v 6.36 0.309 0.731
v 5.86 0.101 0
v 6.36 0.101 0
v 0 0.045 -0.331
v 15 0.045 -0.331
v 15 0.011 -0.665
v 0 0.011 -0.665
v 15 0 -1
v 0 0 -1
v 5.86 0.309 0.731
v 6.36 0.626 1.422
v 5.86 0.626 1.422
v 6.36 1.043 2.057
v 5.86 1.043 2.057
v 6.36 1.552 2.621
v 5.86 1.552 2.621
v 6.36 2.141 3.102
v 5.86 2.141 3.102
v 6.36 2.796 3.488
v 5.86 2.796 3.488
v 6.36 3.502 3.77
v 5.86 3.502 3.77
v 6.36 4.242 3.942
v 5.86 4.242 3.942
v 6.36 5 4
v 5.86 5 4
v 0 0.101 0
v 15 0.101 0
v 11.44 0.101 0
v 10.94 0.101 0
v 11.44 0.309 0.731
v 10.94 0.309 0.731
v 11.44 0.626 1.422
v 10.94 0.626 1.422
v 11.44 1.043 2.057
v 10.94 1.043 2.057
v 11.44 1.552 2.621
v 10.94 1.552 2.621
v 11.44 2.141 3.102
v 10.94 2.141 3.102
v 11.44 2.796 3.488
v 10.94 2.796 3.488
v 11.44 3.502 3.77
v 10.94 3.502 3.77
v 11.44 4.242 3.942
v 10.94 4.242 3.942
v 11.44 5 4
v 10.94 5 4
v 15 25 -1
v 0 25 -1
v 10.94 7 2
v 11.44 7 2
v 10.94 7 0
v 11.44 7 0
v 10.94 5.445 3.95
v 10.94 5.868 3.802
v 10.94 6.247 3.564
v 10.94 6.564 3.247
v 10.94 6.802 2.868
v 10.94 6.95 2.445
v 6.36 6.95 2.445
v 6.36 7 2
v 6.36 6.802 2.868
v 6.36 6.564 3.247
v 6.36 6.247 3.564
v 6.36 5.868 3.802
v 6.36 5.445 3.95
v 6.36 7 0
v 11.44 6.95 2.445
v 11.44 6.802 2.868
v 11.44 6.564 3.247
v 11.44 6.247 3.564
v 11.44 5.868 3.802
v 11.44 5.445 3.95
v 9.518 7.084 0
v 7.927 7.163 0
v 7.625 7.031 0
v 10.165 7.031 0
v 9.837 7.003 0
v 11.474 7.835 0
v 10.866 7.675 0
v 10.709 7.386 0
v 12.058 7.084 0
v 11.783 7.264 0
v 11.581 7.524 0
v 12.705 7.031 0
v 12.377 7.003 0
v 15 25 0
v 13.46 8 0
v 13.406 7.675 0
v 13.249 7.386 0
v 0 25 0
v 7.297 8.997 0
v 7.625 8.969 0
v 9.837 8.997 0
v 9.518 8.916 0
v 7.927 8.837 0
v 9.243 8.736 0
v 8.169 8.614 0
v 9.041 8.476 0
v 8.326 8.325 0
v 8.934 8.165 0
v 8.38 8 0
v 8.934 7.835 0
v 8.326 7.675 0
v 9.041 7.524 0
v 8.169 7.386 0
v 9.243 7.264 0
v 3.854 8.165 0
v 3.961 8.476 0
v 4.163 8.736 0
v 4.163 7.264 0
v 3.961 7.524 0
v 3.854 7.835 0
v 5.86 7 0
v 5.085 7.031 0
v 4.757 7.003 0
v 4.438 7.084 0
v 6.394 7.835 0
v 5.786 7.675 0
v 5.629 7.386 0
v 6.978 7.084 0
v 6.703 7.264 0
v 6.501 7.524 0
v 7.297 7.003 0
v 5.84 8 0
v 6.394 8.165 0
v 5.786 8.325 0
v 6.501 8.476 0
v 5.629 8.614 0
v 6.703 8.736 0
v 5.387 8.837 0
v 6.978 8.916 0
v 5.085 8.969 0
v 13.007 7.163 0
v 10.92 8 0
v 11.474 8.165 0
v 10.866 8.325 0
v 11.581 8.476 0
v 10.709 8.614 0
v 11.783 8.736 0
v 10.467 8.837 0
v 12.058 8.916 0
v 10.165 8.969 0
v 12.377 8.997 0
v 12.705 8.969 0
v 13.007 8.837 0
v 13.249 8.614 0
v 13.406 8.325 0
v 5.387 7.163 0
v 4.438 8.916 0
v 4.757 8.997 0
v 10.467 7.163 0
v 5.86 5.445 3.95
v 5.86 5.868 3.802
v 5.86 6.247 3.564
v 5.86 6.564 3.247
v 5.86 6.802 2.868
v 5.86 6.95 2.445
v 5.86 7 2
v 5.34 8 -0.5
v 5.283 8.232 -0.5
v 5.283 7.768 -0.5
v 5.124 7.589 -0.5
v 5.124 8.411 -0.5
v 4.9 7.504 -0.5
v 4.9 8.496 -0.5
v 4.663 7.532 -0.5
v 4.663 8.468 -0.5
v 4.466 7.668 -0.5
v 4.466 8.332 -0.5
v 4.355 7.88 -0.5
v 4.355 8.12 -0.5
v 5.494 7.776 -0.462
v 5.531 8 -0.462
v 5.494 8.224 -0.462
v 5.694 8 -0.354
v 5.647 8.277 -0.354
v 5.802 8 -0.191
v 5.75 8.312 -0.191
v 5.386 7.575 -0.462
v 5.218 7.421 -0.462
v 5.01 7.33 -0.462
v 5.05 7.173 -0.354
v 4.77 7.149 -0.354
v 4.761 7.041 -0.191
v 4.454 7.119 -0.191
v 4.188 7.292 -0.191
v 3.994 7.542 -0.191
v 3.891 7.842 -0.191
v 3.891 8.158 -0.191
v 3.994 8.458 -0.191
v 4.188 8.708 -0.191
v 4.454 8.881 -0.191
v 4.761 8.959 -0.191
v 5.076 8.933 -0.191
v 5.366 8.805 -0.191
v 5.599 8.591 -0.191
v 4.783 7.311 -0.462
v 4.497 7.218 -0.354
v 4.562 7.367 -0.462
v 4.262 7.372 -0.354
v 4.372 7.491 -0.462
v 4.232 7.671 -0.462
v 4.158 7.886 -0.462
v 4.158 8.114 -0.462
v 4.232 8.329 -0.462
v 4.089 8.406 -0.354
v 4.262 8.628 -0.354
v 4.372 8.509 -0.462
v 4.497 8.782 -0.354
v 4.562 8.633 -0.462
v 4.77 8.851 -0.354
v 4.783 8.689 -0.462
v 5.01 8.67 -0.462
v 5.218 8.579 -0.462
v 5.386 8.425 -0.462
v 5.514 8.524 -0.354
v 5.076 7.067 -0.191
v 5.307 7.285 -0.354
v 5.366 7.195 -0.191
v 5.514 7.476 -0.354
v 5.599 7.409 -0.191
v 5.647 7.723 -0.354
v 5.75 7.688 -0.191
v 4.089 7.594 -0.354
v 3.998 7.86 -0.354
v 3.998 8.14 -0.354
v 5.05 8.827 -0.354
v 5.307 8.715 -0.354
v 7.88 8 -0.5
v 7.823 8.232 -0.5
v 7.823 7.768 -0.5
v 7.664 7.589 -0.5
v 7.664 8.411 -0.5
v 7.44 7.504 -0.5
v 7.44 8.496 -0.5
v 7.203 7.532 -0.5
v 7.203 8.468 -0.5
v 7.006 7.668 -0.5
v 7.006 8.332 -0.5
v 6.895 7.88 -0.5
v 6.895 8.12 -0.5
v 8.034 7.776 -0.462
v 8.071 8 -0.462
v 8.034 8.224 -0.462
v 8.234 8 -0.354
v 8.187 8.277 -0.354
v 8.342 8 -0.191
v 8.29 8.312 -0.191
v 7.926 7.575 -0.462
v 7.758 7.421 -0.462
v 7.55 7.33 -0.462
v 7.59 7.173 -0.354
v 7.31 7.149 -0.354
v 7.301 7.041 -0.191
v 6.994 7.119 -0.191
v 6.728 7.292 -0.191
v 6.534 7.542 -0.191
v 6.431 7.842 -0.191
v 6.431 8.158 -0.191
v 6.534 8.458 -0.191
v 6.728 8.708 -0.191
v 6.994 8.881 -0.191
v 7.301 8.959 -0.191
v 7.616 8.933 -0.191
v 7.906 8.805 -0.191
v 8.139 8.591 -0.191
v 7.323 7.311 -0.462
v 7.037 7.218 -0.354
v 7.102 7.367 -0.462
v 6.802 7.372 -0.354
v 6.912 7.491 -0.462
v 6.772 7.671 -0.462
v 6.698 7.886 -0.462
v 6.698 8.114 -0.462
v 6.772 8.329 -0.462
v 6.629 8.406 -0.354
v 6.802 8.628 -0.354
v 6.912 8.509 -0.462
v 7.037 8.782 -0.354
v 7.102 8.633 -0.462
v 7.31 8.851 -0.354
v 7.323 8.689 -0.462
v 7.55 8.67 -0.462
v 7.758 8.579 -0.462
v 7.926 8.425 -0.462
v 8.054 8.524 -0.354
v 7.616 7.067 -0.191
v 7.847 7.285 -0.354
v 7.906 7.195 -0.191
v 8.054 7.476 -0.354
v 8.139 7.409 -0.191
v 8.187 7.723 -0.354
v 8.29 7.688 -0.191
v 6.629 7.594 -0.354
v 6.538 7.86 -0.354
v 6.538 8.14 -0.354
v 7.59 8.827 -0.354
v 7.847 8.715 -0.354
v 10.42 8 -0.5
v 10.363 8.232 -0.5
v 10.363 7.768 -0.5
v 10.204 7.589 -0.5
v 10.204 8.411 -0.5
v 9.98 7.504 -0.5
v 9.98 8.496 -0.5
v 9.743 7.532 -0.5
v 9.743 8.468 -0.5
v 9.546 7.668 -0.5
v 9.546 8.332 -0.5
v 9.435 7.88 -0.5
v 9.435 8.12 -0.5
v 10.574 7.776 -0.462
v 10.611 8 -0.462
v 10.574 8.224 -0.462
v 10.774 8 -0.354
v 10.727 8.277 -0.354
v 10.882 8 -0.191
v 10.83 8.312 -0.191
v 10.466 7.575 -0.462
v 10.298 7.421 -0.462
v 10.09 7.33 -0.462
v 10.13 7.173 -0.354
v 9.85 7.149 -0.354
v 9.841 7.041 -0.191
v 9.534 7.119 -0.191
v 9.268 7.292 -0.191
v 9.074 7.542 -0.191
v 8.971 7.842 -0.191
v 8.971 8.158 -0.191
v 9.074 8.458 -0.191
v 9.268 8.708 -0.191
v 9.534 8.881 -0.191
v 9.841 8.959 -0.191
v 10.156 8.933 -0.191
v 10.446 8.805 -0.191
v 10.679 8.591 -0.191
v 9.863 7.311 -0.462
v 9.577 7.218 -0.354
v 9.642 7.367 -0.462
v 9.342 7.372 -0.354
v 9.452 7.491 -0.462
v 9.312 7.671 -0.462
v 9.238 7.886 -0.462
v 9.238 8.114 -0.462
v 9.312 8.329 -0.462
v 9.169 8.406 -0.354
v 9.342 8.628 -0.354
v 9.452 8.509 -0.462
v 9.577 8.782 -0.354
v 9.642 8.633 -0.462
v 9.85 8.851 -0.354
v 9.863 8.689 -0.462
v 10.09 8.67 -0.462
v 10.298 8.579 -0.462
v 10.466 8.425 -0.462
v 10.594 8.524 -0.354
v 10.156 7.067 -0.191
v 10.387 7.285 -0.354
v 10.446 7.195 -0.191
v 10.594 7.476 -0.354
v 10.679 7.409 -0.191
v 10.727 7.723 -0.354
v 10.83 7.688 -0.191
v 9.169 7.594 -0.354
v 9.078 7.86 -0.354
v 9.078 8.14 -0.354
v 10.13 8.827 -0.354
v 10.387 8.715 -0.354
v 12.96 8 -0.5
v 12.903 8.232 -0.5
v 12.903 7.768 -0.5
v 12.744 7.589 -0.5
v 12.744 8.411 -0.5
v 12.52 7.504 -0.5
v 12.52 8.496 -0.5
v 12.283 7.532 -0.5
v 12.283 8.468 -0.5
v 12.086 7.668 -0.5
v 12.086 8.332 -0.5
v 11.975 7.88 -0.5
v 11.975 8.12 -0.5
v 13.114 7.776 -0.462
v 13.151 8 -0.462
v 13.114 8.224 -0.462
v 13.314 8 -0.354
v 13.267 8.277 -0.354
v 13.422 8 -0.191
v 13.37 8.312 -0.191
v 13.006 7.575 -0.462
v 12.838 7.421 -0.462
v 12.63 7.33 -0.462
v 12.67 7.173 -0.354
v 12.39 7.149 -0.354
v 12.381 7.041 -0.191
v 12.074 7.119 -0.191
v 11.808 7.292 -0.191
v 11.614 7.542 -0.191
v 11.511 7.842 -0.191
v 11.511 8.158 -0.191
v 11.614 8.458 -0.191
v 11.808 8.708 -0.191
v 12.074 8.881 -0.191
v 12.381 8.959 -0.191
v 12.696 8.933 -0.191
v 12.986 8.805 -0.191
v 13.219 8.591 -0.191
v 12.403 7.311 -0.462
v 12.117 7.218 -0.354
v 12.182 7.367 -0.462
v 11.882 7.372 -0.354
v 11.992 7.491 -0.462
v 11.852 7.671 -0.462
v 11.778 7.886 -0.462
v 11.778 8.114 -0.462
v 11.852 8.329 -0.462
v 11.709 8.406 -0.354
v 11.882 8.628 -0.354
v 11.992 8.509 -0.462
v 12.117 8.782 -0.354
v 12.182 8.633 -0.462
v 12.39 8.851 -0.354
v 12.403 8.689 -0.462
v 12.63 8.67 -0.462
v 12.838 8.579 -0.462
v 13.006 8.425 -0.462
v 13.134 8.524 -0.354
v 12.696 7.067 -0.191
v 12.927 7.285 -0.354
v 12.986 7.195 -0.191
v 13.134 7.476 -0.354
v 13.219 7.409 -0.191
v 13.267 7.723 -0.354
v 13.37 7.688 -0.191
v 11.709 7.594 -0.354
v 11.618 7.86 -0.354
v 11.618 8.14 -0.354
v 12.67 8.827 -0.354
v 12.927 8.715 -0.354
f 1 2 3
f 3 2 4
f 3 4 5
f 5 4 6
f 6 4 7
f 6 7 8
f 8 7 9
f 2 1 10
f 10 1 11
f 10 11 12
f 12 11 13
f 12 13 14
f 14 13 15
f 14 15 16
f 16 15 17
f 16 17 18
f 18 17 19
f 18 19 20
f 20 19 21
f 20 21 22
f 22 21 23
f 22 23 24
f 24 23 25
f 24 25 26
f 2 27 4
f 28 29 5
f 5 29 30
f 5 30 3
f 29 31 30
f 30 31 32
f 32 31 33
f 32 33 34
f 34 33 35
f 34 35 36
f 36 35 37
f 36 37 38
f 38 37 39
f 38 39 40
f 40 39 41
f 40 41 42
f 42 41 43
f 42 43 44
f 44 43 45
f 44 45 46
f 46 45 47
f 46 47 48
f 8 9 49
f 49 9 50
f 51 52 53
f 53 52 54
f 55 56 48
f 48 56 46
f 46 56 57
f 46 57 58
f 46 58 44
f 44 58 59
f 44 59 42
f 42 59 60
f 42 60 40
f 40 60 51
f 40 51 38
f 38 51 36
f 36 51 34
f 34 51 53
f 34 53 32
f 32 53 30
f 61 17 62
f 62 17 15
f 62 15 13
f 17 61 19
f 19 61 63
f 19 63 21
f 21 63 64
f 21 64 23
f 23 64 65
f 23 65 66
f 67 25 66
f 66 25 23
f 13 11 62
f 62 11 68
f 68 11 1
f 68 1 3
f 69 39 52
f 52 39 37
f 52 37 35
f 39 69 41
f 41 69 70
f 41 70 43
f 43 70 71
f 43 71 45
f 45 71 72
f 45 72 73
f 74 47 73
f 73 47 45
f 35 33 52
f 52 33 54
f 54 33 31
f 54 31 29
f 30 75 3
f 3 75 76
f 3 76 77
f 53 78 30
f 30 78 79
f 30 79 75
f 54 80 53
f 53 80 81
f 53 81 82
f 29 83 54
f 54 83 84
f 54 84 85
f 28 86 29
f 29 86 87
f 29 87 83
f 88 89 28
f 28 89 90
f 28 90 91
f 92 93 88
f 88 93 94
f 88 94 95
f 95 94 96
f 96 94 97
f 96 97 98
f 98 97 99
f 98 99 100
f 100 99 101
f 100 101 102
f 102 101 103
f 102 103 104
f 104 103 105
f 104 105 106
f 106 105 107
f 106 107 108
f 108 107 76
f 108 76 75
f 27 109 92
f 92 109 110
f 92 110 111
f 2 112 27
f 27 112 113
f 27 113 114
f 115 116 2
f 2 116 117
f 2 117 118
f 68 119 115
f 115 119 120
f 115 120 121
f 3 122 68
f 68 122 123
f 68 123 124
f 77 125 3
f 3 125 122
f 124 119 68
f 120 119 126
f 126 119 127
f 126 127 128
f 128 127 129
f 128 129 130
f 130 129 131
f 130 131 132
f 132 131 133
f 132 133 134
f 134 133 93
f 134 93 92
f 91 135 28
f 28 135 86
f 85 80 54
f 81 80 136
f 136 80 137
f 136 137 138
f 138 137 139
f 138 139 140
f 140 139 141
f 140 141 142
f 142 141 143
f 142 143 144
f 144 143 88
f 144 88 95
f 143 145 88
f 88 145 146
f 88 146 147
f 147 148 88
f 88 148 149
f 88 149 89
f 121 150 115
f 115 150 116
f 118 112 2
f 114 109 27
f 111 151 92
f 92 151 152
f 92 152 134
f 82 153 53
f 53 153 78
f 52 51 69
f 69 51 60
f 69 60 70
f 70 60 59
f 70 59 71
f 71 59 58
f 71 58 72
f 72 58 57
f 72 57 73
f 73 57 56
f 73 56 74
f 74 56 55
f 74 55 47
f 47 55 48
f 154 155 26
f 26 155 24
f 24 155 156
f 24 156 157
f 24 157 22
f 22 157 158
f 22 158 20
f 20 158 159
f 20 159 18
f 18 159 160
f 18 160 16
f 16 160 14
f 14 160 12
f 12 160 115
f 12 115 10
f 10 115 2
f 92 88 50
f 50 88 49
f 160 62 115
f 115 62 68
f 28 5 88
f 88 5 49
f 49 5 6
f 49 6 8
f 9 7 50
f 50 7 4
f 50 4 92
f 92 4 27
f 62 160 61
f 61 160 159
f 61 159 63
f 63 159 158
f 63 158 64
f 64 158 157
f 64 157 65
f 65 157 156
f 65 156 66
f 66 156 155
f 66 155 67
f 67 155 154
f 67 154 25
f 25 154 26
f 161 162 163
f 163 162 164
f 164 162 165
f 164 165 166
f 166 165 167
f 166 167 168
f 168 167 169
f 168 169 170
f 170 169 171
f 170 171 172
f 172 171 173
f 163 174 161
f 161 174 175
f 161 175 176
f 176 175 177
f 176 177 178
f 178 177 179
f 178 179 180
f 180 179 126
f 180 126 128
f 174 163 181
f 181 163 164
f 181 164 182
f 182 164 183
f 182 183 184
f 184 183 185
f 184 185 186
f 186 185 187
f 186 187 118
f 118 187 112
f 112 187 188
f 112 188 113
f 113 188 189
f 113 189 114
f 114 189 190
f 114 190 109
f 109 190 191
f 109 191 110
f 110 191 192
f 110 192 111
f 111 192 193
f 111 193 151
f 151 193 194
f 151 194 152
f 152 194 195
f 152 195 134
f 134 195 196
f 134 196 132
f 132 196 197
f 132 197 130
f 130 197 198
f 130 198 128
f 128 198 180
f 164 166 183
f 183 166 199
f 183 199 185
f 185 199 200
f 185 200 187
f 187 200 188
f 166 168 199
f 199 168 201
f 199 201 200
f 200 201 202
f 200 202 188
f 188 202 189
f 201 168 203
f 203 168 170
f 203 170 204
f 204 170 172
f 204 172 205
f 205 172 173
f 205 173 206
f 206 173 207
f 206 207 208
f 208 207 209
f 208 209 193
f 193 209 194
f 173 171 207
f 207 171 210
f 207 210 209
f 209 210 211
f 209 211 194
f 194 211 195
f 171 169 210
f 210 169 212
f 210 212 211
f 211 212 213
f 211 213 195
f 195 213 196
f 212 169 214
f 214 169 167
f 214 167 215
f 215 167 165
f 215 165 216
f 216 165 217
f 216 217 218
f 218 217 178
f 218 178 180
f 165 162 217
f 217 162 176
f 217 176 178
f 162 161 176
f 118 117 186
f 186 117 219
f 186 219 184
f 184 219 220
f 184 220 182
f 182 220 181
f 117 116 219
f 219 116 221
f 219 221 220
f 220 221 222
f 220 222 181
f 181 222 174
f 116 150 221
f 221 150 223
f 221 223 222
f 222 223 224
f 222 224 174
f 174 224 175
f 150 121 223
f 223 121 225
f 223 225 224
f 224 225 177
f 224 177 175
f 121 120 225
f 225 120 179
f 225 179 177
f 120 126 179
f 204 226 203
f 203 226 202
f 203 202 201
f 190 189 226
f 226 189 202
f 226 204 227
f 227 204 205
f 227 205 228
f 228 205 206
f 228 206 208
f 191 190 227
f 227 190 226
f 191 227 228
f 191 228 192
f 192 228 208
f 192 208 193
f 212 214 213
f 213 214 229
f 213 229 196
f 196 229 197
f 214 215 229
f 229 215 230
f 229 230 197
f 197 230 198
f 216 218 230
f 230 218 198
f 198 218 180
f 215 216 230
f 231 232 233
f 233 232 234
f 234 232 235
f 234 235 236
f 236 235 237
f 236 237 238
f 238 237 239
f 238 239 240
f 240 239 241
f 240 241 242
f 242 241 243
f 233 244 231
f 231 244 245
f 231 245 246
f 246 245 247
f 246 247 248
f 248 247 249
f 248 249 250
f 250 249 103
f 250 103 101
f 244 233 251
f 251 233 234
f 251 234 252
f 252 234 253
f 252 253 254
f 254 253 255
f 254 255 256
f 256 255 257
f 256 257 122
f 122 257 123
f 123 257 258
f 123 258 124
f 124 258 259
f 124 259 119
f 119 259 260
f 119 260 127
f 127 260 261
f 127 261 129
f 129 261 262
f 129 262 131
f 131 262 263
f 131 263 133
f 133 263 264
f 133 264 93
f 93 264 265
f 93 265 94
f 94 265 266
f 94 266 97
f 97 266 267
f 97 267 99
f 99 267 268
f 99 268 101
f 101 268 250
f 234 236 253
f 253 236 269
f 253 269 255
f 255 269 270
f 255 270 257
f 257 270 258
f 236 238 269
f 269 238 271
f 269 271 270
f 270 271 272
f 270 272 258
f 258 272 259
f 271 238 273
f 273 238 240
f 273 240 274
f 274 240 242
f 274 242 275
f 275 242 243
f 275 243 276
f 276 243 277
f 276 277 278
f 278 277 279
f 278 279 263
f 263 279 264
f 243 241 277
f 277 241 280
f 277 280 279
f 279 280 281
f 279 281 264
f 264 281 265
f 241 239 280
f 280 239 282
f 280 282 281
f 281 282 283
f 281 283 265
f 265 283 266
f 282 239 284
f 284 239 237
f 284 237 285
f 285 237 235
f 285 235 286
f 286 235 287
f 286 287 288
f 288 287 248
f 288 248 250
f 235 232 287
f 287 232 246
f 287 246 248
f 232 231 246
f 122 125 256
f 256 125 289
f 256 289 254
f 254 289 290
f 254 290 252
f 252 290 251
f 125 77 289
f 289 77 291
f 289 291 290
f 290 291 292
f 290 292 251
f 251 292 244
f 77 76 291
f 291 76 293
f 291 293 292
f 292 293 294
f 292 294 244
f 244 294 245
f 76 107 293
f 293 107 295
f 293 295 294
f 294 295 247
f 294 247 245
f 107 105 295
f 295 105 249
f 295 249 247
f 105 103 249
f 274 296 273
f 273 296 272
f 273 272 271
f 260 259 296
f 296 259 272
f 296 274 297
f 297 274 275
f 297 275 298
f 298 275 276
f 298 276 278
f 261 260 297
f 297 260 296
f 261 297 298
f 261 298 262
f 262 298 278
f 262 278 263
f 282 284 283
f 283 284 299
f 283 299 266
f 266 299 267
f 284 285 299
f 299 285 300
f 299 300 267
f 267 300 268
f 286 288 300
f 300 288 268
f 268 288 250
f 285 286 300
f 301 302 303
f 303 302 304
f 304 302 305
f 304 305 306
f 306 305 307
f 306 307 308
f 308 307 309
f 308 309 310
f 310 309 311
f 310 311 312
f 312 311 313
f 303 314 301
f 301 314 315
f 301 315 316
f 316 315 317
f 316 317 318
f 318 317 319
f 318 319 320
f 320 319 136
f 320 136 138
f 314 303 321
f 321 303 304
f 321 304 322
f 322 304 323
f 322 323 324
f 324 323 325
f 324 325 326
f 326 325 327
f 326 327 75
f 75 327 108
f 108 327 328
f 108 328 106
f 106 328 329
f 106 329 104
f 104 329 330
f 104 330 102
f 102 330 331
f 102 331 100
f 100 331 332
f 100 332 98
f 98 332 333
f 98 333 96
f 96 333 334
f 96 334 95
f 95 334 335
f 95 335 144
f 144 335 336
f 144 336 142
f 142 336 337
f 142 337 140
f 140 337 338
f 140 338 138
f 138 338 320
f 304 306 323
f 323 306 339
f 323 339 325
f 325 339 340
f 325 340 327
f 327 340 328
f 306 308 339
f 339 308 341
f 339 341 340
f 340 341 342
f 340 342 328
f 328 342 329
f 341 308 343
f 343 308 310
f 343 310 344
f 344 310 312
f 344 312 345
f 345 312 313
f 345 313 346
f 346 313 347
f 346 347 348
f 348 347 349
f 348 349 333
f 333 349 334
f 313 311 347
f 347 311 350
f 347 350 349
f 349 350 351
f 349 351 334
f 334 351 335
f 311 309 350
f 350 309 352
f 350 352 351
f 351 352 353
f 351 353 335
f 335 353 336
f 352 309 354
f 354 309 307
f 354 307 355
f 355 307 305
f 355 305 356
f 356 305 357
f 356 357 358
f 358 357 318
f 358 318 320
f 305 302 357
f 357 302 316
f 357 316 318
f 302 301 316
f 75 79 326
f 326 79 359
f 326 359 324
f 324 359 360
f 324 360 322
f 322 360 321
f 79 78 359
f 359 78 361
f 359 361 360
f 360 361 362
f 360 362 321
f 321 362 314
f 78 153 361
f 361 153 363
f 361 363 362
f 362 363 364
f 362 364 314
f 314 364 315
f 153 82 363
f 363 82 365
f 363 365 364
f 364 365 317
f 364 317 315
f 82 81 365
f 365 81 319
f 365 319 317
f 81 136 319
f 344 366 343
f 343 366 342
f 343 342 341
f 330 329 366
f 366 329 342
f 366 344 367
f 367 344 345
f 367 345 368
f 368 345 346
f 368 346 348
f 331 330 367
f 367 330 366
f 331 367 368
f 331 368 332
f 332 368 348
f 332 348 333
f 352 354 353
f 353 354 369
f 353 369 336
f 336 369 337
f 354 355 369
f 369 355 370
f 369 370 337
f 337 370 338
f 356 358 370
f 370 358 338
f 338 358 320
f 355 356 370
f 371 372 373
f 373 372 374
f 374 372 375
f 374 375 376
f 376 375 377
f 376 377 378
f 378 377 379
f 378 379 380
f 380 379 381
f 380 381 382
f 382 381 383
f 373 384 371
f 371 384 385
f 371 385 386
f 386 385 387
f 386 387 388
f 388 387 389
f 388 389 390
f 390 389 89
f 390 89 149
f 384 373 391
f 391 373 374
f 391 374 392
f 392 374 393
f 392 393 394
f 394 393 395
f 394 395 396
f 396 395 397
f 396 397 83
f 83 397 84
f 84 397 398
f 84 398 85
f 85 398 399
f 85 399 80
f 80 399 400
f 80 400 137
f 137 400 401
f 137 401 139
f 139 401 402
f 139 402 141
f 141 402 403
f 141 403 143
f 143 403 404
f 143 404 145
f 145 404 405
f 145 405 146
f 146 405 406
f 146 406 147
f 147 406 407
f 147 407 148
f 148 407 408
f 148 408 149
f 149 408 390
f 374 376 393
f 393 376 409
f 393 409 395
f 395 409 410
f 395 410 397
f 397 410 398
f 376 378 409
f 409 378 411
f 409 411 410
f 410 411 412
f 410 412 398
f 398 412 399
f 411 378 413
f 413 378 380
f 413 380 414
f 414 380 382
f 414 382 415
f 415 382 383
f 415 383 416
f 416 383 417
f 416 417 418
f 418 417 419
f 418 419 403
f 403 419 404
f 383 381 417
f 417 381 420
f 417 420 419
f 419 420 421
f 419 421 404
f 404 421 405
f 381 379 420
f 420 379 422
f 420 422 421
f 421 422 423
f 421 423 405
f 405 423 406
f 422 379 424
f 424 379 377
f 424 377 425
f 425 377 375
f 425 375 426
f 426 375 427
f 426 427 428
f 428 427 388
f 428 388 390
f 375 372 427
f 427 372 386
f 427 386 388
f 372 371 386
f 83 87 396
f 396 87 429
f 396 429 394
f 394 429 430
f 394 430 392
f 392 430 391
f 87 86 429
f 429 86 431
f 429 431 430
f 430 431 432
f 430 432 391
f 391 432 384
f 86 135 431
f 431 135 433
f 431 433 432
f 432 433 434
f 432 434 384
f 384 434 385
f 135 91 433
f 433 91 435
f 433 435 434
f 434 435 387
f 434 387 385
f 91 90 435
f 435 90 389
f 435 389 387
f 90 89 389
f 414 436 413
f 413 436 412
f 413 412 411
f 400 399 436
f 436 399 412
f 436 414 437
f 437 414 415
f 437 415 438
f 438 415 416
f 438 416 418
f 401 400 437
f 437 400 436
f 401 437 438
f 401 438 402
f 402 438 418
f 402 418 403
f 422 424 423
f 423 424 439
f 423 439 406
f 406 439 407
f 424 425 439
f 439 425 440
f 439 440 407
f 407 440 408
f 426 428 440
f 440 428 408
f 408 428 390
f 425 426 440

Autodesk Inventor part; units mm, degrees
ref_plane "YZ Plane" through (0, 0, 0) normal (1, 0, 0) x (0, 1, 0)
ref_plane "XZ Plane" through (0, 0, 0) normal (0, 1, 0) x (-1, 0, 0)
ref_plane "XY Plane" through (0, 0, 0) normal (0, 0, 1) x (1, 0, 0)
sketch "Sketch1" plane through (0, 0, 0) normal (0, 0, 1) x (1, 0, 0)
  line L0 (0, 0) -> (15, 0)
  line L1 (15, 0) -> (15, 25)
  line L2 (15, 25) -> (0, 25)
  line L3 (0, 25) -> (0, 0)
  line L4 (0, 7) -> (15, 7) construction
  line L5 (10.94, 7) -> (11.44, 7)
  line L6 (11.44, 7) -> (11.44, 0)
  line L7 (11.44, 0) -> (10.94, 0)
  line L8 (10.94, 0) -> (10.94, 7)
  line L9 (6.36, 7) -> (5.86, 7)
  line L10 (5.86, 7) -> (5.86, 0)
  line L11 (5.86, 0) -> (6.36, 0)
  line L12 (6.36, 0) -> (6.36, 7)
  point P0 (11.19, 7)
  point P1 (6.11, 7)
  dimension "d0" = 15
  dimension "d1" = 25
  dimension "d2" = 18
  dimension "d3" = 3.81
  dimension "d4" = 0.5
  dimension "d5" = 0.5
  dimension "d6" = 5.08
extrude "Extrusion1" add sketch "Sketch1" against normal blind 1
extrude "Extrusion2" add sketch "Sketch1" along normal blind 4 contours L10 L9 L12 L0 | L8 L5 L6 L0
sketch "Sketch2" plane through (0, 0, 0) normal (0, 0, 1) x (1, 0, 0)
  line L0 (0, 7) -> (15, 7) construction
  line L1 (11.44, 7) -> (11.44, 0) projected
  line L2 (11.44, 0) -> (15, 0) projected
  line L3 (15, 0) -> (15, 25) projected
  line L4 (15, 25) -> (0, 25) projected
  line L5 (0, 25) -> (0, 0) projected
  line L6 (0, 0) -> (5.86, 0) projected
  line L7 (5.86, 0) -> (5.86, 7) projected
  line L8 (5.86, 7) -> (6.36, 7) projected
  line L9 (6.36, 7) -> (6.36, 0) projected
  line L10 (6.36, 0) -> (10.94, 0) projected
  line L11 (10.94, 0) -> (10.94, 7) projected
  line L12 (10.94, 7) -> (11.44, 7) projected
  circle A0 centre (12.46, 8) radius 1
  circle A1 centre (9.92, 8) radius 1
  circle A2 centre (7.38, 8) radius 1
  circle A3 centre (4.84, 8) radius 1
  dimension "d11" = 2
  dimension "d12" = 2.54
  dimension "d13" = 1
  dimension "d16" = 2.54
extrude "Extrusion3" cut sketch "Sketch2" against normal blind 0.5 contours A0 | A1 | A2 | A3
fillet "Fillet1" radius 0.5 4 edges at (11.46, 8, -0.5) (8.92, 8, -0.5) (6.38, 8, -0.5) (3.84, 8, -0.5)
fillet "Fillet2" radius 5 2 edges at (6.11, 0, 4) (11.19, 0, 4)
fillet "Fillet3" radius 2 2 edges at (6.11, 7, 4) (11.19, 7, 4)
equation "\"d5\" = d4"
properties part number "mateksys_micro_bec_support"
